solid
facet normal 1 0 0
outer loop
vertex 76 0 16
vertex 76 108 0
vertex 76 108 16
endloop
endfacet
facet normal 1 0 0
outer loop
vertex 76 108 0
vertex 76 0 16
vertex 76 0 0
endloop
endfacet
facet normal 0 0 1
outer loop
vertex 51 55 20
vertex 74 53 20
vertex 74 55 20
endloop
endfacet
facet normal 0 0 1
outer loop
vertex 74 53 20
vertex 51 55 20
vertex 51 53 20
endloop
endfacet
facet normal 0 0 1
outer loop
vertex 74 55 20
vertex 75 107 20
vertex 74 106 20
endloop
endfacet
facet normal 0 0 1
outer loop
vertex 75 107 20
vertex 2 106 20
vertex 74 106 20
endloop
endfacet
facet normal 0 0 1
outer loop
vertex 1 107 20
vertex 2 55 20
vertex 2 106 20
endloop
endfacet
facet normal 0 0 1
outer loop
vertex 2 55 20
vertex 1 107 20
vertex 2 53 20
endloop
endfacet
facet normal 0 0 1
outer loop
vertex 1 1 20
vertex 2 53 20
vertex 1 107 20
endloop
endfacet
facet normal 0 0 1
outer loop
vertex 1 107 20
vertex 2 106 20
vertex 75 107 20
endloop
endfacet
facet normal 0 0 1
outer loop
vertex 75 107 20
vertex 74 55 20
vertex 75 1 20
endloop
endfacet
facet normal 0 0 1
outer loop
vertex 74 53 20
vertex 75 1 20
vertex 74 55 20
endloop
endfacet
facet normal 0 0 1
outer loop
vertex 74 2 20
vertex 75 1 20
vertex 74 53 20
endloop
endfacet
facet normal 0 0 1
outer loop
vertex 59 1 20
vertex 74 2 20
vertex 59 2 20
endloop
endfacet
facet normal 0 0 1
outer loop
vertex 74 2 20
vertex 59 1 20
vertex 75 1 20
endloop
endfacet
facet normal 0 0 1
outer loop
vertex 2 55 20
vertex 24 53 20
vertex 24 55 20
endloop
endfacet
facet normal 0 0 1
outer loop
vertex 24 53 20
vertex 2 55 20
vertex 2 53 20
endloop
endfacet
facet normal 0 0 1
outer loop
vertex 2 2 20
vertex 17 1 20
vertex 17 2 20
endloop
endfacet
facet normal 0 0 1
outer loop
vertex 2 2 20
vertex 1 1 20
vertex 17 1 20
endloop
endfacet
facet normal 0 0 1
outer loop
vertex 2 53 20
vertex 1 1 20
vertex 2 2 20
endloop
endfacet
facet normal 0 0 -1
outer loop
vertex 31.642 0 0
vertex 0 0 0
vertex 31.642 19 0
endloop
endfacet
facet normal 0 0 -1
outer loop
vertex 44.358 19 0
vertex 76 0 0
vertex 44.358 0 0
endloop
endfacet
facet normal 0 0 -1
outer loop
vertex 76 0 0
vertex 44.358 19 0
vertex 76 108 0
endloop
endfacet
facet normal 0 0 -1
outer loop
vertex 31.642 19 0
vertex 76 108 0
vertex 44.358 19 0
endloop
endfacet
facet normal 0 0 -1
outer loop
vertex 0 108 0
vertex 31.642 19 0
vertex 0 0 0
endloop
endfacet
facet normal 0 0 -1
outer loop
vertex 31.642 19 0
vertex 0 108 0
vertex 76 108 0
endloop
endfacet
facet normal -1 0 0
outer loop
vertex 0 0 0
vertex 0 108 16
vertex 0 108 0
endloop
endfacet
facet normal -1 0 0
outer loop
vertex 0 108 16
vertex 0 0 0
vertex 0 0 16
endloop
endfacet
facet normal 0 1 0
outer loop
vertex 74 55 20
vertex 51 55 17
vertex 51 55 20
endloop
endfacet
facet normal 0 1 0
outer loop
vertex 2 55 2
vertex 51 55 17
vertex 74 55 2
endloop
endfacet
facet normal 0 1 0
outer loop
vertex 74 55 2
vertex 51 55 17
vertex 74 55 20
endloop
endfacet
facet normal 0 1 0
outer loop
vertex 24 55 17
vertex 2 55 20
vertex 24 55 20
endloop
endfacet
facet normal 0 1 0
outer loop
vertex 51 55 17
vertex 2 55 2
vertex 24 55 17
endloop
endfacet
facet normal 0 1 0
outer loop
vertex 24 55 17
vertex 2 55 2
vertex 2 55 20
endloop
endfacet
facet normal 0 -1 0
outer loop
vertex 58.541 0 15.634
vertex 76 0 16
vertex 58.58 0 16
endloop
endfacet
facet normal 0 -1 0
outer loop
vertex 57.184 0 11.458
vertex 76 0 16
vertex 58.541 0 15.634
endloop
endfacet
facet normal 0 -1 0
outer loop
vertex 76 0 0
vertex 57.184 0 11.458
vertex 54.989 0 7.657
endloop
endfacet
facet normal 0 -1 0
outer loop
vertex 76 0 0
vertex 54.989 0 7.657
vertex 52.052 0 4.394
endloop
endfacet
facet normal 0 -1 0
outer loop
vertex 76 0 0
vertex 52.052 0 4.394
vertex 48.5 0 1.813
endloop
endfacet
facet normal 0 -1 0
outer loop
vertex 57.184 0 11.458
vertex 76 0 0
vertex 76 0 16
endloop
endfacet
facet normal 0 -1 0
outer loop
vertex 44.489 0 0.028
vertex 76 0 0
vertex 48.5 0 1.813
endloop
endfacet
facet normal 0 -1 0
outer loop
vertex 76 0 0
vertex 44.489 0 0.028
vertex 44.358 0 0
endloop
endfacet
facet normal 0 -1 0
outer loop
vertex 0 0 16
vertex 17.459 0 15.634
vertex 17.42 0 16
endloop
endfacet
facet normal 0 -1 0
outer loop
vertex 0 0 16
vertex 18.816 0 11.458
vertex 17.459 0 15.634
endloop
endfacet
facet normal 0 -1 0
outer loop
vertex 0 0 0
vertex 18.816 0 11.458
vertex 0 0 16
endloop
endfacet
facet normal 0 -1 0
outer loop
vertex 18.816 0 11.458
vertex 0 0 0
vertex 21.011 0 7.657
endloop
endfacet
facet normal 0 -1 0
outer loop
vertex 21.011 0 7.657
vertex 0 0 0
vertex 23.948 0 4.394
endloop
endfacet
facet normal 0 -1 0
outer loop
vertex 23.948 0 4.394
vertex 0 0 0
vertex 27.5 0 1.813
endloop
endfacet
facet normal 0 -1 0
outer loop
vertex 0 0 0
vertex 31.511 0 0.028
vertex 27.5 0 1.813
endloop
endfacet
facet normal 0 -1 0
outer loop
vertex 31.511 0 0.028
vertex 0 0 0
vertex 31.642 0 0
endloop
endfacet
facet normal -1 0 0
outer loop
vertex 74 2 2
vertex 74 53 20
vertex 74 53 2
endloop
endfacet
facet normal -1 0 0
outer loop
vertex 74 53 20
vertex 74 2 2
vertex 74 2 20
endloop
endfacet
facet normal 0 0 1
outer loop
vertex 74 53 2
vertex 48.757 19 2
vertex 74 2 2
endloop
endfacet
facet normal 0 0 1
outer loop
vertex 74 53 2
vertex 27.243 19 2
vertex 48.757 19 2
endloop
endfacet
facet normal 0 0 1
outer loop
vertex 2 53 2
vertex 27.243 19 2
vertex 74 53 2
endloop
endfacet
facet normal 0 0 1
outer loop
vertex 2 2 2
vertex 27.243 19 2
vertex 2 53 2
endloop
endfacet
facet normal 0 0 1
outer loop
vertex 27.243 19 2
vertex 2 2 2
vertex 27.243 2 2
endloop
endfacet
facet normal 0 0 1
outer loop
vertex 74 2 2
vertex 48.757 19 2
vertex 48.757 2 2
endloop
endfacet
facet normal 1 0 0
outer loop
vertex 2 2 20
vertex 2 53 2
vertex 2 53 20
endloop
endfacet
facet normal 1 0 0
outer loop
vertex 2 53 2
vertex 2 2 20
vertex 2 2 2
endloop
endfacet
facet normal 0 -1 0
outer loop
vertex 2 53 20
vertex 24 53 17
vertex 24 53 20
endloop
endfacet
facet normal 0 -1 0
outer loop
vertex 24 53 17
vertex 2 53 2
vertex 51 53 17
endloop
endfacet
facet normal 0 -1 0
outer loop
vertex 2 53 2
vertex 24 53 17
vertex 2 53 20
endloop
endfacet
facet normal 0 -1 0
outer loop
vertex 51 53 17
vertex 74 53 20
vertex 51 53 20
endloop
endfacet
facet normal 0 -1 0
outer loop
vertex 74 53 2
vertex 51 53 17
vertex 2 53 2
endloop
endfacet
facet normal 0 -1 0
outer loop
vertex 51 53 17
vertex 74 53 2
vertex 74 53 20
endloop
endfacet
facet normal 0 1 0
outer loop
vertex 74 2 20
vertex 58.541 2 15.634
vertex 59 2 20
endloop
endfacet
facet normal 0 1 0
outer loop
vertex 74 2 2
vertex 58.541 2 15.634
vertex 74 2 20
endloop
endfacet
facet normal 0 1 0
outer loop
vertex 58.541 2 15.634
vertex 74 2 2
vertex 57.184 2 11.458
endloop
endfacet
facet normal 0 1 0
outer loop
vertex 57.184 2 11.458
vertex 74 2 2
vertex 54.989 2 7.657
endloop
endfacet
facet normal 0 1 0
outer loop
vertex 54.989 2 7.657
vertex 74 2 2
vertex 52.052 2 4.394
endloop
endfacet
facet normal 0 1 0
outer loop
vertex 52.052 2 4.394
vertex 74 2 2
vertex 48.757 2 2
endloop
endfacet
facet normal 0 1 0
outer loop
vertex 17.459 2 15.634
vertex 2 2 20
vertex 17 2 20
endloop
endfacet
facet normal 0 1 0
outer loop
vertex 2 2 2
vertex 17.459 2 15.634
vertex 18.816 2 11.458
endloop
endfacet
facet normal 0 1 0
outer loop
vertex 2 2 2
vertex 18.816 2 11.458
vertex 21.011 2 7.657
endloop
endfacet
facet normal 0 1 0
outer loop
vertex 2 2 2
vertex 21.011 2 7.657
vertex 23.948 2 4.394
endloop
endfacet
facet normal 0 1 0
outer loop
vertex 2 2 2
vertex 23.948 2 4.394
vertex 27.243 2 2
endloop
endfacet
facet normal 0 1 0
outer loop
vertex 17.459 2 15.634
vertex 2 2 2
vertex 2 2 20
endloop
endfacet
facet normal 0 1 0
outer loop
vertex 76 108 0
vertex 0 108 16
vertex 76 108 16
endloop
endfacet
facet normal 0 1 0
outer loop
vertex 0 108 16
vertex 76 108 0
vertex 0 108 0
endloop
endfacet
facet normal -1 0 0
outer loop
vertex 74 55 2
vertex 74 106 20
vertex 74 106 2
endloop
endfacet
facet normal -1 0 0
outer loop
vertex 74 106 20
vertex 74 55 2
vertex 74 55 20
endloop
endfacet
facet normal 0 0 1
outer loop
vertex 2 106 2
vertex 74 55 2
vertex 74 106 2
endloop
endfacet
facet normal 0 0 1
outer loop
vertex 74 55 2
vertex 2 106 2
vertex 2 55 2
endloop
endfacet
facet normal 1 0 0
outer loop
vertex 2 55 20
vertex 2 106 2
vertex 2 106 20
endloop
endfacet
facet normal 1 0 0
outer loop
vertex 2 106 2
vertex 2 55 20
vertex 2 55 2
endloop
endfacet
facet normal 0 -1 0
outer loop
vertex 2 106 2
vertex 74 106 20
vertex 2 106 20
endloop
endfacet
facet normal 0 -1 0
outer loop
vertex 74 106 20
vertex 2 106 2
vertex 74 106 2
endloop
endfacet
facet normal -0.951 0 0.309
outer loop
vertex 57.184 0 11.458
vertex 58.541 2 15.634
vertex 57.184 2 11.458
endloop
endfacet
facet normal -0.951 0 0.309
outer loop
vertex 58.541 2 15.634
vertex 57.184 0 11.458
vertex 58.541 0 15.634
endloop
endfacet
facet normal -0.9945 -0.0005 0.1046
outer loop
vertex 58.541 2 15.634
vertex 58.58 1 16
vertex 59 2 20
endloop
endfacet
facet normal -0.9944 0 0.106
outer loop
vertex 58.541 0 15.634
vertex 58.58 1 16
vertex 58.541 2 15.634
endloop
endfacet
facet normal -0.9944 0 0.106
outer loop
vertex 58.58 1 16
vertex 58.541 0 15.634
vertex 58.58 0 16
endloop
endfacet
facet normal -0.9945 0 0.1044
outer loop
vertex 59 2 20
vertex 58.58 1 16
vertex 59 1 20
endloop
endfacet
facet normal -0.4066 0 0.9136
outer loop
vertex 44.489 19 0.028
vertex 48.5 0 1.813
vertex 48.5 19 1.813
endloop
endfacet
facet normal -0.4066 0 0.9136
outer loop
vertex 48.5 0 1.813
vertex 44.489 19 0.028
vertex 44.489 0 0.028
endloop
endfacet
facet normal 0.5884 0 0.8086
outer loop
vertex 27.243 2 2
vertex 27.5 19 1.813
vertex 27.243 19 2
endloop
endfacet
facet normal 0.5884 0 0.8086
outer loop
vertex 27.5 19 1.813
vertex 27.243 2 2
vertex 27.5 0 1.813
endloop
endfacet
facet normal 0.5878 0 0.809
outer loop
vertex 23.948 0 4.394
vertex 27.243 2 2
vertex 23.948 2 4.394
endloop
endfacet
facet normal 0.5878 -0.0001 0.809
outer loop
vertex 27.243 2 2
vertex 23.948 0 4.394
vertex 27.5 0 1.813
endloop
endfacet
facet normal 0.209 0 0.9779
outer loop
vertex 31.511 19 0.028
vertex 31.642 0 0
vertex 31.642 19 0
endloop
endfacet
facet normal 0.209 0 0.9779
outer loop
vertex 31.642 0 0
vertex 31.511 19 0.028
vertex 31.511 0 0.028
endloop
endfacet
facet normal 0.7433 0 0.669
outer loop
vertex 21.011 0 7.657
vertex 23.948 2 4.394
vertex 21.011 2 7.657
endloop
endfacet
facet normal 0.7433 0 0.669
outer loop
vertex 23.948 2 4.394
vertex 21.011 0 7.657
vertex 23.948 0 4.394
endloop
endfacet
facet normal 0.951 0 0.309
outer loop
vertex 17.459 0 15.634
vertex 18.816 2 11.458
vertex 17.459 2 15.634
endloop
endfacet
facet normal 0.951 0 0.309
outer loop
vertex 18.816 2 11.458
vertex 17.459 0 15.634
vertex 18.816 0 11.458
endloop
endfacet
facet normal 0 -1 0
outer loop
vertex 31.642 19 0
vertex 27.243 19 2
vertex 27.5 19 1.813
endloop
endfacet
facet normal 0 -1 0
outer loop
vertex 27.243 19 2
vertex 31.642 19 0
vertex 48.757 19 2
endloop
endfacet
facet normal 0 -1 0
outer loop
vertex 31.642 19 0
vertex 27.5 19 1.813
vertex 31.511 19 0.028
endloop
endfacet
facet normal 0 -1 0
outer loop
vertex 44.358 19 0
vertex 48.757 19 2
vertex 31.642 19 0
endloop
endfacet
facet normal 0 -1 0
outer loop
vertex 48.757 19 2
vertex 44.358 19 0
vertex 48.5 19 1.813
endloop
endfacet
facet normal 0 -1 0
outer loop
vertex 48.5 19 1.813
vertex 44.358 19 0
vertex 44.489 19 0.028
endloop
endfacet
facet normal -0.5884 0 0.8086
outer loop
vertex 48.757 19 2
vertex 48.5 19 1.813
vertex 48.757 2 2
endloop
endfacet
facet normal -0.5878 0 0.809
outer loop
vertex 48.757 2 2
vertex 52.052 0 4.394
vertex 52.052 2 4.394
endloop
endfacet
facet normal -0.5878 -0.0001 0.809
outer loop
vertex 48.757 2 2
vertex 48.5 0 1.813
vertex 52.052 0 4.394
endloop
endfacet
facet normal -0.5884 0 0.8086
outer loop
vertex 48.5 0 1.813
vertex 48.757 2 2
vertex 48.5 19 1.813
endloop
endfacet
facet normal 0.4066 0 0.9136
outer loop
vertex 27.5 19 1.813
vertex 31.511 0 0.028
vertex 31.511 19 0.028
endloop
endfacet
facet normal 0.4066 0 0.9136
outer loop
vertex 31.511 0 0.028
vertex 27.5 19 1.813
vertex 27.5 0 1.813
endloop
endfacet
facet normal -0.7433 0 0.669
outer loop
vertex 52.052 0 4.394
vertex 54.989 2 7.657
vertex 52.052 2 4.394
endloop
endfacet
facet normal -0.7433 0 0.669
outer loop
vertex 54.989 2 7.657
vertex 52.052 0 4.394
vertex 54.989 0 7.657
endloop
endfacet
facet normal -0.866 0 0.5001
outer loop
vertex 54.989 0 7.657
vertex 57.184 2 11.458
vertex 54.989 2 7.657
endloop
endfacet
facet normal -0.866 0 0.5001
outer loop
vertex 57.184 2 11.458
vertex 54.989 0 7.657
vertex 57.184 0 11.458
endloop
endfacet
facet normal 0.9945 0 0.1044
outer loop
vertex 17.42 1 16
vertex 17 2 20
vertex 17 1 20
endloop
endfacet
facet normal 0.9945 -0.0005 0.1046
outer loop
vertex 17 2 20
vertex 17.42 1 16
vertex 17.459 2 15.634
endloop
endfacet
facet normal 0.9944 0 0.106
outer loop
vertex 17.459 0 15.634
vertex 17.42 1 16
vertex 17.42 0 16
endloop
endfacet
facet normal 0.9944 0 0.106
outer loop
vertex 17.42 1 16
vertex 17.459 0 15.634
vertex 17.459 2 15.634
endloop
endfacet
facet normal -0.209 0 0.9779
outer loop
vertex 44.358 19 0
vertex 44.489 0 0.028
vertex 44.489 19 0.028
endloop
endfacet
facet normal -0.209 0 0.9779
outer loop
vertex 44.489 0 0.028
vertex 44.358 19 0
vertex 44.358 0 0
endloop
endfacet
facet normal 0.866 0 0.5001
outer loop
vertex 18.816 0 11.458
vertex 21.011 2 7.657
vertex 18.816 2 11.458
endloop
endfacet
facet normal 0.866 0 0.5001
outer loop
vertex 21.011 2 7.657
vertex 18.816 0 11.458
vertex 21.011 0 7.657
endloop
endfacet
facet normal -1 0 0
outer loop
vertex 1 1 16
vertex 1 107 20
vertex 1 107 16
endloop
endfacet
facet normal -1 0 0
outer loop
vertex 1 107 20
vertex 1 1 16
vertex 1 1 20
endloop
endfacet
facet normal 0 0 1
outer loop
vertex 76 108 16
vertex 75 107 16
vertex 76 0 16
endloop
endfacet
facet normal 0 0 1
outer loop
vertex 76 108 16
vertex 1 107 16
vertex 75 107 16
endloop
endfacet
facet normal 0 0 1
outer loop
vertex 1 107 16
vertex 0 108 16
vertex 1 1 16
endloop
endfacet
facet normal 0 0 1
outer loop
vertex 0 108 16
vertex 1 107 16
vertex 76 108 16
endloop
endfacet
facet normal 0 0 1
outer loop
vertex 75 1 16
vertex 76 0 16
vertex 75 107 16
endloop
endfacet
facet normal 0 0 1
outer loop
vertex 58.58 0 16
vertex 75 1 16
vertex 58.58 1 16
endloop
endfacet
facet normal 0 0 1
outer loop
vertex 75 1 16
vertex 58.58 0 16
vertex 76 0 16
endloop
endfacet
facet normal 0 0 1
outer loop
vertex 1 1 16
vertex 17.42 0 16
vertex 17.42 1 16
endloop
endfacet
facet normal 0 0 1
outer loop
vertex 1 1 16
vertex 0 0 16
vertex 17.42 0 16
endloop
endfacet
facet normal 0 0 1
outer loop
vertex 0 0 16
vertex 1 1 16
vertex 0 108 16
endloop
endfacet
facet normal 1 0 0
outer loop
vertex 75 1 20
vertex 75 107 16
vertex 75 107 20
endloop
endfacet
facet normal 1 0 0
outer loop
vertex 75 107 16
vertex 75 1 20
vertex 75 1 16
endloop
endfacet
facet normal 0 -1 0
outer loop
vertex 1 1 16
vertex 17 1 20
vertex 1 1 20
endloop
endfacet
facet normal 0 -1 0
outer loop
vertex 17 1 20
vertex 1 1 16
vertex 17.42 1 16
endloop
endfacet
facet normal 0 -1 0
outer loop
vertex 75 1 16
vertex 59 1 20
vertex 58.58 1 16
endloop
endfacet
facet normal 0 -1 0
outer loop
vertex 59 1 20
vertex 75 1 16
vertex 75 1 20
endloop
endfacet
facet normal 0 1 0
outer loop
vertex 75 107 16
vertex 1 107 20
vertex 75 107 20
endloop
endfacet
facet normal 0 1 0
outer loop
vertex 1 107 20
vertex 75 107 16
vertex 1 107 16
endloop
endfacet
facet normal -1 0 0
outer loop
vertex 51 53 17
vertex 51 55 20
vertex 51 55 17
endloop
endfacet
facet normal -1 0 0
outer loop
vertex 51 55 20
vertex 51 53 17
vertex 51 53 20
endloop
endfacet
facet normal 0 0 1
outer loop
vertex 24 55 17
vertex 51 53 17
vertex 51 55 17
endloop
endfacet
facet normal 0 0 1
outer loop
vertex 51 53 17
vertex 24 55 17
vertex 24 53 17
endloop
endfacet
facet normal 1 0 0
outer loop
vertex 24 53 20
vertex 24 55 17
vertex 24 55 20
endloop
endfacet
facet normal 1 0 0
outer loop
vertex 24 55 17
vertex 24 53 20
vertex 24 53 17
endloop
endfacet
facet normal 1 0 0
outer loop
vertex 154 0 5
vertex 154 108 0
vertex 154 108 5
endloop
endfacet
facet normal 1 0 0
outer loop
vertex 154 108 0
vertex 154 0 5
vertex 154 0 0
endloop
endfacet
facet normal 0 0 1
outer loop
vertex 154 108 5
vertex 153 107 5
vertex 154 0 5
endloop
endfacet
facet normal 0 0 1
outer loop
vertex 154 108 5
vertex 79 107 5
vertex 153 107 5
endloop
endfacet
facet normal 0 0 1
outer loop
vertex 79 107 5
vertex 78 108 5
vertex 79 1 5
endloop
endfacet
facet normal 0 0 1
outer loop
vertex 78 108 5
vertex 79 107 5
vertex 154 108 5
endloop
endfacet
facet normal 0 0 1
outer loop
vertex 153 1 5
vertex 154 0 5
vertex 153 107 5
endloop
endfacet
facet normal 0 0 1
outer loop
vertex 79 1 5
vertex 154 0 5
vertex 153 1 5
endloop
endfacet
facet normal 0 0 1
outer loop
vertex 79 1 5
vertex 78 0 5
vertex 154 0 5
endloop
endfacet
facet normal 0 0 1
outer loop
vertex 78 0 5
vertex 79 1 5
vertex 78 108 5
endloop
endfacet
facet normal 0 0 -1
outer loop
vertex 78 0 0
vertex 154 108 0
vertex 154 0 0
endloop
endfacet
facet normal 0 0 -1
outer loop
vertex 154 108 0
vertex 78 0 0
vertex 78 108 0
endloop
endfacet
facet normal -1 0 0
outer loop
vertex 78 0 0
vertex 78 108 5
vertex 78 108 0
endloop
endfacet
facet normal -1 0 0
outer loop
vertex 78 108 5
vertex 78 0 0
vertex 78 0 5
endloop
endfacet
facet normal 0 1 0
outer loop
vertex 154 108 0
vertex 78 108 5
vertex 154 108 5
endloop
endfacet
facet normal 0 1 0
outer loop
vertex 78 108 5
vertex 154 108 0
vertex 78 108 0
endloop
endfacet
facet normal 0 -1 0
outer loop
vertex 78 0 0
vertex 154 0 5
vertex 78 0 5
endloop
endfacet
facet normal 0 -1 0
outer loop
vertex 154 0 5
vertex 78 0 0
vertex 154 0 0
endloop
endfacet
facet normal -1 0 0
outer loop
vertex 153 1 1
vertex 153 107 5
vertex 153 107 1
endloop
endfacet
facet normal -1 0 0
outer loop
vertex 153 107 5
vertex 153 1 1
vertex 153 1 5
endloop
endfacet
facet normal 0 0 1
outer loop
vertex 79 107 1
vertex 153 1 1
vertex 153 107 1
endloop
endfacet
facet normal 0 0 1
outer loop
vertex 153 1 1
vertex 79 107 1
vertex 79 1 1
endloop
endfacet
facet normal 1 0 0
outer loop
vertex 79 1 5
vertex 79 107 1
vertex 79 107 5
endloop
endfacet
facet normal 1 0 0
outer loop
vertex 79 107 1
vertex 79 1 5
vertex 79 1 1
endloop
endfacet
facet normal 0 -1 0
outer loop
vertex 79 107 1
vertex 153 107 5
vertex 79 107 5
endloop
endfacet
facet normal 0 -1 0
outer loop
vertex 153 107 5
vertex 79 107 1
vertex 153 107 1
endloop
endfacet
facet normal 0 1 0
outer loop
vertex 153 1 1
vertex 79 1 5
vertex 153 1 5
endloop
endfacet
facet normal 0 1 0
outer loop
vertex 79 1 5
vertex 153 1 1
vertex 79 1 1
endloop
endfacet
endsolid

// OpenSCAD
$card_lx = 72;
$card_ly = 51;
$height = 20;
$border = 2;


module emptyBox(x, y, h, border, lowBorder) {
    if (lowBorder == 0) {
        lowBorder = border;
    }
    difference() {
        cube([x+(border*2), y+(border*2), h]);
        translate([border, border, border]) 
            cube([x, y, h]);
    }
}

module doubleBox(x,y,h , border) {
    difference() {
        union() {
            emptyBox(x, y, h, border);
            translate([0, y+border, 0])
                emptyBox(x, y, h, border);
        }


        translate([(x+(border*2))/2, -1, h]) {
            difference() {
                rotate([-90,0,0]){
                    cylinder(h=h, r = h+1);
                }
                translate([-h,-1,1])
                    cube(h*3);
            }
        }

    }
}

module baseBox() {
    difference() {
        doubleBox($card_lx, $card_ly, $height, $border);
        translate([-1,-1,16]) 
            cube([$border,$card_ly*3, 5]);
        translate([$card_lx+$border+1,-1,16]) 
            cube([$border,$card_ly*3, 5]);
        translate([-1,-1,16])
            cube([$card_lx*3, $border, 5]);
        translate([-1,($card_ly+$border)*2+1,16])
            cube([$card_lx*3, $border, 5]);
        translate([$card_lx/3.7,$card_ly, $height-3])
            cube([37,$border*3, 4]);
    }
}

module lidBase() {
    translate ([$card_lx+3*$border,0,0])
        emptyBox($card_lx+$border, 2*$card_ly+2*$border, 5,1, $border);
}

baseBox();
lidBase();
